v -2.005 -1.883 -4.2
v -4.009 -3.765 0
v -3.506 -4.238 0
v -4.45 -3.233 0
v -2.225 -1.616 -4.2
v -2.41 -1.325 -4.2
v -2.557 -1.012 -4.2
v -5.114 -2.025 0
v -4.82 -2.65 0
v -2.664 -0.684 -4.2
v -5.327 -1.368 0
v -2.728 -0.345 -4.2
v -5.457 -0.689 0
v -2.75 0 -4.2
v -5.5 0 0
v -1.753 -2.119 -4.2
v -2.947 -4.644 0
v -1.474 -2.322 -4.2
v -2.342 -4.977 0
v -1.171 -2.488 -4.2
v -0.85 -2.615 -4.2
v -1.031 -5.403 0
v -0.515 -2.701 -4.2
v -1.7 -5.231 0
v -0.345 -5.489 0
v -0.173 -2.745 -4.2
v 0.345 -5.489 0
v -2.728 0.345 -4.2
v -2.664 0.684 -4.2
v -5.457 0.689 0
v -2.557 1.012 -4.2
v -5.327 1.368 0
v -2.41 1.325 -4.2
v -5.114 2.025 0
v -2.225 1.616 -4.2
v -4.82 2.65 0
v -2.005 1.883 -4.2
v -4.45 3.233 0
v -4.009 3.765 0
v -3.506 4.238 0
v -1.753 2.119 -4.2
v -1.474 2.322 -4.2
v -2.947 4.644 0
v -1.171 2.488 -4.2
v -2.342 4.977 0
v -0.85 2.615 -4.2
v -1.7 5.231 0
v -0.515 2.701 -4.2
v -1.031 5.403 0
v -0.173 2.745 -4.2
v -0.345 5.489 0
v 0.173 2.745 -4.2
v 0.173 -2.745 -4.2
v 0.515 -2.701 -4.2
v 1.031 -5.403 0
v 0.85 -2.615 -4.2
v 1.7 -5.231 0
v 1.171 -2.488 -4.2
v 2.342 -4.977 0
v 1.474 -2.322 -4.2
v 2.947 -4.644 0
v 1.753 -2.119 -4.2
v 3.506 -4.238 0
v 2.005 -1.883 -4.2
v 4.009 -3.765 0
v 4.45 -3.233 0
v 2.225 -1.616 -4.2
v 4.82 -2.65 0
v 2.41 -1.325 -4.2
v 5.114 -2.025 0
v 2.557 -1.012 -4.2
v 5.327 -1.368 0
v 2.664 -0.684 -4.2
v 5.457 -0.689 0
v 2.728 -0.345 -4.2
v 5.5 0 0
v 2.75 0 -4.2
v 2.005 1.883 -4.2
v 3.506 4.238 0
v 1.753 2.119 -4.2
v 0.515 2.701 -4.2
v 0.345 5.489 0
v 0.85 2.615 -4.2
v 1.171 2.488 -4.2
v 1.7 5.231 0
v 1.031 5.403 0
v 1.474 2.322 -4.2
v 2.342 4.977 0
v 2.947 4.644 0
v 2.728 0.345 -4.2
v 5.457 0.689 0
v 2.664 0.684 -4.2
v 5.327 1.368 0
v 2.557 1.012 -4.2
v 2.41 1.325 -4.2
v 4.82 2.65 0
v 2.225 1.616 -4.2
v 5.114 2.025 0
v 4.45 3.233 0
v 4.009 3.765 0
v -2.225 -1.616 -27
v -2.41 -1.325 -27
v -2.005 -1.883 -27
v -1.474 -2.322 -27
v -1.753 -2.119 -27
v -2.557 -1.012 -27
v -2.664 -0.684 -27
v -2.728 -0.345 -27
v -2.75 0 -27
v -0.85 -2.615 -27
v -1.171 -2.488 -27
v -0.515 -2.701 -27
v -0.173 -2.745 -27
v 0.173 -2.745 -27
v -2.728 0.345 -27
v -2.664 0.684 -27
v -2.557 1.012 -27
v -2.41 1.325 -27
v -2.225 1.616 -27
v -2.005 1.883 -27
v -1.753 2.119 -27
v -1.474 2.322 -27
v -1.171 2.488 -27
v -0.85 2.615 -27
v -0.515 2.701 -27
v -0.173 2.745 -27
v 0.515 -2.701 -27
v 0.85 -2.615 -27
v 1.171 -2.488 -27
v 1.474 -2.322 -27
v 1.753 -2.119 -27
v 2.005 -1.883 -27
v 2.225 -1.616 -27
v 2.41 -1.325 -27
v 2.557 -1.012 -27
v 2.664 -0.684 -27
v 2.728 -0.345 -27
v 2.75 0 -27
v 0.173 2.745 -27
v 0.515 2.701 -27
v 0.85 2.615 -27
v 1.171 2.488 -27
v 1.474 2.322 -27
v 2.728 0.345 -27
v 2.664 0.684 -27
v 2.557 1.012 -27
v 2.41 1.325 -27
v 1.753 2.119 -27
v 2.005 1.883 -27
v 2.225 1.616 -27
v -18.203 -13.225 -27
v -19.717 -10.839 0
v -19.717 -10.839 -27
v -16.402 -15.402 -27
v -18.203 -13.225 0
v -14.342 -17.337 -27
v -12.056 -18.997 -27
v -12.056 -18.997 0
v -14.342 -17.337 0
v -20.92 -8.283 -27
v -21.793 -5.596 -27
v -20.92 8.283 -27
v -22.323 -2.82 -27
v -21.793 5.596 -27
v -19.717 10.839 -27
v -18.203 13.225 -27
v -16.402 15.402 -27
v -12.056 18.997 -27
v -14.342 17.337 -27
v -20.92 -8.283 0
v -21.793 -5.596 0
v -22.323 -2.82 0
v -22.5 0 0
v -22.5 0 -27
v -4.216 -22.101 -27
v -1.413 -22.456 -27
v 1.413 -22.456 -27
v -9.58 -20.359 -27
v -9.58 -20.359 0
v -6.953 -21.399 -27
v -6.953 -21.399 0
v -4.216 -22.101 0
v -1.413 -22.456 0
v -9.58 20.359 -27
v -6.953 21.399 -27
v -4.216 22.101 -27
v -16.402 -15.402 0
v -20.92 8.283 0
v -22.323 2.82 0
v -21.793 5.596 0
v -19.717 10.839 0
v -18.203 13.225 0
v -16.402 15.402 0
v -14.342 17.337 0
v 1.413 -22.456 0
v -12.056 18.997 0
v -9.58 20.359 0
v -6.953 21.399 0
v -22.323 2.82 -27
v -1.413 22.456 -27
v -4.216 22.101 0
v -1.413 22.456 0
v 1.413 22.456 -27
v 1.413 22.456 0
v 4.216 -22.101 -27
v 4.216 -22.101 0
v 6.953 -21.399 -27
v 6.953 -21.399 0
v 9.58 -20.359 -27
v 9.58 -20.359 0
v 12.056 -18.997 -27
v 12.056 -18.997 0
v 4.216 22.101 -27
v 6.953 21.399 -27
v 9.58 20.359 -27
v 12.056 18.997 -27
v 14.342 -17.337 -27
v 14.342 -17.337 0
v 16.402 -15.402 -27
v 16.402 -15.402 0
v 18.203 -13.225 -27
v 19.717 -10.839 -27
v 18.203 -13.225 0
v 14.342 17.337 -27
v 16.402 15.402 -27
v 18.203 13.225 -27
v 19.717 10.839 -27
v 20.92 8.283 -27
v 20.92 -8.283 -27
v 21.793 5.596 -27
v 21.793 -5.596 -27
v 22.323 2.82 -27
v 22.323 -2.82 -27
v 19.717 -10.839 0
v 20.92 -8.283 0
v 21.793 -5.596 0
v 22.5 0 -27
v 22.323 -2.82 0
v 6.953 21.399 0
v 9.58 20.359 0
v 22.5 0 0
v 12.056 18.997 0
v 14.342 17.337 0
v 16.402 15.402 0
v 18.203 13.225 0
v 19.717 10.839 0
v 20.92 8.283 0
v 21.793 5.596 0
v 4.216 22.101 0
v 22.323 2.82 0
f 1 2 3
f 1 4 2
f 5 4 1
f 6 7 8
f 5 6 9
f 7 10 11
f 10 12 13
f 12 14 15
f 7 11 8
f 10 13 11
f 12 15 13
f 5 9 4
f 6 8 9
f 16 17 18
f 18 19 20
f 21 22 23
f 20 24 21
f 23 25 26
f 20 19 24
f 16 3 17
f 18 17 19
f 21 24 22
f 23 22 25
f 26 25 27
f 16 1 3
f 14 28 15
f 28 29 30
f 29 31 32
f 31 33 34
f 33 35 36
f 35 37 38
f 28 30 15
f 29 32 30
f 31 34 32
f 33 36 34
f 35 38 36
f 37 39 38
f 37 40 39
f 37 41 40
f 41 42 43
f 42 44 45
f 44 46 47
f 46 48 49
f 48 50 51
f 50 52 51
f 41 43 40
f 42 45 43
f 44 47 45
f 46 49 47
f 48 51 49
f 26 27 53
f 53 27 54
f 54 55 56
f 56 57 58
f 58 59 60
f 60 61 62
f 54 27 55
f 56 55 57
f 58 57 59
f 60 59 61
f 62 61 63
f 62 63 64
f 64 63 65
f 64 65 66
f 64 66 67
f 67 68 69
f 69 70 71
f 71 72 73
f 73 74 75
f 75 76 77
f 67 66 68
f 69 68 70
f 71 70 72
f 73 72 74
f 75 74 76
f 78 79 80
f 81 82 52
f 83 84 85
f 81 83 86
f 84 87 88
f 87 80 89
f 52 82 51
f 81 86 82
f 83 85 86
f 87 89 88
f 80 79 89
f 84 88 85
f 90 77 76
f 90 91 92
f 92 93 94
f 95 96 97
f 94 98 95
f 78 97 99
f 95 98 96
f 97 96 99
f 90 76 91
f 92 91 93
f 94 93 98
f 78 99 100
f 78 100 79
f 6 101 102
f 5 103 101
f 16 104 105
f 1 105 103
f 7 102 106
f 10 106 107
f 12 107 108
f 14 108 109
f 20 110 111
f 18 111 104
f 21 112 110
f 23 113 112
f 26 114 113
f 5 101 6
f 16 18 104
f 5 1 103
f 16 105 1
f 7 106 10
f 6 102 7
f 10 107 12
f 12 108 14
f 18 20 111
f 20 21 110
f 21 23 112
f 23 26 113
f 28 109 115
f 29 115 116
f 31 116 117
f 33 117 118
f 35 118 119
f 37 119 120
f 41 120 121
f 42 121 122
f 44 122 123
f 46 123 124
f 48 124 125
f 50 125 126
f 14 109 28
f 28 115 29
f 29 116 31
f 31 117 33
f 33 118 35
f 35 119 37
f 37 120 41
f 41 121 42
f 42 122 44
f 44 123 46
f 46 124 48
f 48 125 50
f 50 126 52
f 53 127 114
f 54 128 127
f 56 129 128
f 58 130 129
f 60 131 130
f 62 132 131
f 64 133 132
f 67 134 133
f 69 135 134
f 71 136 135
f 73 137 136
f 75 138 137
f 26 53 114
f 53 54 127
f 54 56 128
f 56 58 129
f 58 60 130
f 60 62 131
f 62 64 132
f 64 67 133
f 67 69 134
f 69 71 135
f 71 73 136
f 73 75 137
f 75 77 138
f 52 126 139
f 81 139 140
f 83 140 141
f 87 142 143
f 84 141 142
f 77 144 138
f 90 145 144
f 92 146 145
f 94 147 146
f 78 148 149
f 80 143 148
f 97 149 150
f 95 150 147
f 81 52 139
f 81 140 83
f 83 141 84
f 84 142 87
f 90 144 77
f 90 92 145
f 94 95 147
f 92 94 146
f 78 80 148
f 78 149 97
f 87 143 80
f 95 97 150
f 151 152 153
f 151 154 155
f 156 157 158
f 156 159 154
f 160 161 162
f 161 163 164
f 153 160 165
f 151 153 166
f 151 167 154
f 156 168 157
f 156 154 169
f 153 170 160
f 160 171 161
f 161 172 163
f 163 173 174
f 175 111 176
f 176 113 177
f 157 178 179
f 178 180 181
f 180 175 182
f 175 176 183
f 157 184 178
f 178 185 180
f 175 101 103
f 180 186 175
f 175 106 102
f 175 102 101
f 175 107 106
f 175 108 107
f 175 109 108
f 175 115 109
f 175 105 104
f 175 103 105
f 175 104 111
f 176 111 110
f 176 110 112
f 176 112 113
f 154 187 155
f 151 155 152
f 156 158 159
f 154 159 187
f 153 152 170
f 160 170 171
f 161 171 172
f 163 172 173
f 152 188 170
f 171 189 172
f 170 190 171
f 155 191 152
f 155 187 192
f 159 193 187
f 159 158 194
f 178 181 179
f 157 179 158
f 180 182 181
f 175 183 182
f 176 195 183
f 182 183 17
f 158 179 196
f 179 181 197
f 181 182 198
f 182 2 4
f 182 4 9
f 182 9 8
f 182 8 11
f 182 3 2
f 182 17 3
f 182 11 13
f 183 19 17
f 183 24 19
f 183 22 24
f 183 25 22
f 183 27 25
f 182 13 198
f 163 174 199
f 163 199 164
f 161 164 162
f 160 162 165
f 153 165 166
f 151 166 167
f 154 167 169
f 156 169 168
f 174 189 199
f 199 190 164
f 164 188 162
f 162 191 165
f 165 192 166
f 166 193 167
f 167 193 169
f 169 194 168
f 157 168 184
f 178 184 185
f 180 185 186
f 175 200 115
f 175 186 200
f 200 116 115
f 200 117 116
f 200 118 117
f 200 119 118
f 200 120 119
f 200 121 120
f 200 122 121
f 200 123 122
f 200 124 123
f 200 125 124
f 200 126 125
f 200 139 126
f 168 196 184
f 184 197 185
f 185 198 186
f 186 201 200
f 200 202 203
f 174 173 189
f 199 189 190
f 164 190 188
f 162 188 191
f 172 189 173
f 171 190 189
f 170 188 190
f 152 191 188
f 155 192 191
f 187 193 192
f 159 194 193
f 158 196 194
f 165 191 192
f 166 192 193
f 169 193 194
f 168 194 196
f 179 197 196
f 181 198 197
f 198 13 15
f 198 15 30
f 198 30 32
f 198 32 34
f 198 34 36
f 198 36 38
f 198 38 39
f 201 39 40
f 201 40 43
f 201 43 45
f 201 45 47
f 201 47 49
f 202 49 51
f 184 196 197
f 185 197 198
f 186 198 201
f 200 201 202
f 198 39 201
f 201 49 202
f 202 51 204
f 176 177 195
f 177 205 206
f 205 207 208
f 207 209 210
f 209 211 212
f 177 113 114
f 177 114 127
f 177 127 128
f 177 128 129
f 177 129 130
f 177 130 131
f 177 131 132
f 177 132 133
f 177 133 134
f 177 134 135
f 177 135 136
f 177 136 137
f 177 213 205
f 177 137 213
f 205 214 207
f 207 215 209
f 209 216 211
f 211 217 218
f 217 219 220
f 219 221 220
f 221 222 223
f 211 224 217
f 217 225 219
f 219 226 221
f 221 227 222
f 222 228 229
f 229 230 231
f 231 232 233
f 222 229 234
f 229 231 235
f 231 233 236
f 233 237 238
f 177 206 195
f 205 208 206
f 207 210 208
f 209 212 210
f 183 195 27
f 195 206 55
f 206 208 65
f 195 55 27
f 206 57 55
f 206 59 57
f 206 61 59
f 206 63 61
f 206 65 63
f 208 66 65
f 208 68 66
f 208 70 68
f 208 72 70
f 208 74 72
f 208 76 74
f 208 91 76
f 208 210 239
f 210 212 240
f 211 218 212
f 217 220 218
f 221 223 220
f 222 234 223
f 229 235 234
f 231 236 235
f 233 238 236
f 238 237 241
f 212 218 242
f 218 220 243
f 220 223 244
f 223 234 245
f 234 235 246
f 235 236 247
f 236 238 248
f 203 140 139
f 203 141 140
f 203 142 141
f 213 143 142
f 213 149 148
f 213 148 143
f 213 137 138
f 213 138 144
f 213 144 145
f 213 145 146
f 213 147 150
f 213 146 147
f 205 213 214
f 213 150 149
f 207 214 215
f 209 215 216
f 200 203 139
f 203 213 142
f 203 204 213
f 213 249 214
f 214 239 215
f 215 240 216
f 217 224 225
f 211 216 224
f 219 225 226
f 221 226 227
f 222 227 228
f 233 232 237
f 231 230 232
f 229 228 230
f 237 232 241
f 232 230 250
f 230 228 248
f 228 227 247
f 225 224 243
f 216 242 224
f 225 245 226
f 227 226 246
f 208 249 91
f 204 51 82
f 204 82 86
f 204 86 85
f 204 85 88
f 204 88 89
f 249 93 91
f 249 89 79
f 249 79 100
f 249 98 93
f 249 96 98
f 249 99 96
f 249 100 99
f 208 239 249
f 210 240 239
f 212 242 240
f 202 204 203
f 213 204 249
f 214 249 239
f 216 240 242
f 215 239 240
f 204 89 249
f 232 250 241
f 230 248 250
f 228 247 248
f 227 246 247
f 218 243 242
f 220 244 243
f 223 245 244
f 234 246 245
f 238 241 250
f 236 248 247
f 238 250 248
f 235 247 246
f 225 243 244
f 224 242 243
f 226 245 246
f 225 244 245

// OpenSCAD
$fn = 50;

difference() {
	union() {
		translate(v = [0, 0, -27.0]) {
			cylinder(h = 27, r = 22.5);
		}
	}
	union() {
		translate(v = [0, 0, 0]) {
			rotate(a = [0, 0, 0]) {
				difference() {
					union() {
						translate(v = [0, 0, -30.0]) {
							cylinder(h = 30, r = 2.25);
						}
						translate(v = [0, 0, -4.2]) {
							cylinder(h = 4.2, r1 = 2.75, r2 = 5.5);
						}
						translate(v = [0, 0, -30.0]) {
							cylinder(h = 30, r = 2.75);
						}
						translate(v = [0, 0, -30.0]) {
							cylinder(h = 30, r = 2.25);
						}
					}
					union();
				}
			}
		}
	}
}
